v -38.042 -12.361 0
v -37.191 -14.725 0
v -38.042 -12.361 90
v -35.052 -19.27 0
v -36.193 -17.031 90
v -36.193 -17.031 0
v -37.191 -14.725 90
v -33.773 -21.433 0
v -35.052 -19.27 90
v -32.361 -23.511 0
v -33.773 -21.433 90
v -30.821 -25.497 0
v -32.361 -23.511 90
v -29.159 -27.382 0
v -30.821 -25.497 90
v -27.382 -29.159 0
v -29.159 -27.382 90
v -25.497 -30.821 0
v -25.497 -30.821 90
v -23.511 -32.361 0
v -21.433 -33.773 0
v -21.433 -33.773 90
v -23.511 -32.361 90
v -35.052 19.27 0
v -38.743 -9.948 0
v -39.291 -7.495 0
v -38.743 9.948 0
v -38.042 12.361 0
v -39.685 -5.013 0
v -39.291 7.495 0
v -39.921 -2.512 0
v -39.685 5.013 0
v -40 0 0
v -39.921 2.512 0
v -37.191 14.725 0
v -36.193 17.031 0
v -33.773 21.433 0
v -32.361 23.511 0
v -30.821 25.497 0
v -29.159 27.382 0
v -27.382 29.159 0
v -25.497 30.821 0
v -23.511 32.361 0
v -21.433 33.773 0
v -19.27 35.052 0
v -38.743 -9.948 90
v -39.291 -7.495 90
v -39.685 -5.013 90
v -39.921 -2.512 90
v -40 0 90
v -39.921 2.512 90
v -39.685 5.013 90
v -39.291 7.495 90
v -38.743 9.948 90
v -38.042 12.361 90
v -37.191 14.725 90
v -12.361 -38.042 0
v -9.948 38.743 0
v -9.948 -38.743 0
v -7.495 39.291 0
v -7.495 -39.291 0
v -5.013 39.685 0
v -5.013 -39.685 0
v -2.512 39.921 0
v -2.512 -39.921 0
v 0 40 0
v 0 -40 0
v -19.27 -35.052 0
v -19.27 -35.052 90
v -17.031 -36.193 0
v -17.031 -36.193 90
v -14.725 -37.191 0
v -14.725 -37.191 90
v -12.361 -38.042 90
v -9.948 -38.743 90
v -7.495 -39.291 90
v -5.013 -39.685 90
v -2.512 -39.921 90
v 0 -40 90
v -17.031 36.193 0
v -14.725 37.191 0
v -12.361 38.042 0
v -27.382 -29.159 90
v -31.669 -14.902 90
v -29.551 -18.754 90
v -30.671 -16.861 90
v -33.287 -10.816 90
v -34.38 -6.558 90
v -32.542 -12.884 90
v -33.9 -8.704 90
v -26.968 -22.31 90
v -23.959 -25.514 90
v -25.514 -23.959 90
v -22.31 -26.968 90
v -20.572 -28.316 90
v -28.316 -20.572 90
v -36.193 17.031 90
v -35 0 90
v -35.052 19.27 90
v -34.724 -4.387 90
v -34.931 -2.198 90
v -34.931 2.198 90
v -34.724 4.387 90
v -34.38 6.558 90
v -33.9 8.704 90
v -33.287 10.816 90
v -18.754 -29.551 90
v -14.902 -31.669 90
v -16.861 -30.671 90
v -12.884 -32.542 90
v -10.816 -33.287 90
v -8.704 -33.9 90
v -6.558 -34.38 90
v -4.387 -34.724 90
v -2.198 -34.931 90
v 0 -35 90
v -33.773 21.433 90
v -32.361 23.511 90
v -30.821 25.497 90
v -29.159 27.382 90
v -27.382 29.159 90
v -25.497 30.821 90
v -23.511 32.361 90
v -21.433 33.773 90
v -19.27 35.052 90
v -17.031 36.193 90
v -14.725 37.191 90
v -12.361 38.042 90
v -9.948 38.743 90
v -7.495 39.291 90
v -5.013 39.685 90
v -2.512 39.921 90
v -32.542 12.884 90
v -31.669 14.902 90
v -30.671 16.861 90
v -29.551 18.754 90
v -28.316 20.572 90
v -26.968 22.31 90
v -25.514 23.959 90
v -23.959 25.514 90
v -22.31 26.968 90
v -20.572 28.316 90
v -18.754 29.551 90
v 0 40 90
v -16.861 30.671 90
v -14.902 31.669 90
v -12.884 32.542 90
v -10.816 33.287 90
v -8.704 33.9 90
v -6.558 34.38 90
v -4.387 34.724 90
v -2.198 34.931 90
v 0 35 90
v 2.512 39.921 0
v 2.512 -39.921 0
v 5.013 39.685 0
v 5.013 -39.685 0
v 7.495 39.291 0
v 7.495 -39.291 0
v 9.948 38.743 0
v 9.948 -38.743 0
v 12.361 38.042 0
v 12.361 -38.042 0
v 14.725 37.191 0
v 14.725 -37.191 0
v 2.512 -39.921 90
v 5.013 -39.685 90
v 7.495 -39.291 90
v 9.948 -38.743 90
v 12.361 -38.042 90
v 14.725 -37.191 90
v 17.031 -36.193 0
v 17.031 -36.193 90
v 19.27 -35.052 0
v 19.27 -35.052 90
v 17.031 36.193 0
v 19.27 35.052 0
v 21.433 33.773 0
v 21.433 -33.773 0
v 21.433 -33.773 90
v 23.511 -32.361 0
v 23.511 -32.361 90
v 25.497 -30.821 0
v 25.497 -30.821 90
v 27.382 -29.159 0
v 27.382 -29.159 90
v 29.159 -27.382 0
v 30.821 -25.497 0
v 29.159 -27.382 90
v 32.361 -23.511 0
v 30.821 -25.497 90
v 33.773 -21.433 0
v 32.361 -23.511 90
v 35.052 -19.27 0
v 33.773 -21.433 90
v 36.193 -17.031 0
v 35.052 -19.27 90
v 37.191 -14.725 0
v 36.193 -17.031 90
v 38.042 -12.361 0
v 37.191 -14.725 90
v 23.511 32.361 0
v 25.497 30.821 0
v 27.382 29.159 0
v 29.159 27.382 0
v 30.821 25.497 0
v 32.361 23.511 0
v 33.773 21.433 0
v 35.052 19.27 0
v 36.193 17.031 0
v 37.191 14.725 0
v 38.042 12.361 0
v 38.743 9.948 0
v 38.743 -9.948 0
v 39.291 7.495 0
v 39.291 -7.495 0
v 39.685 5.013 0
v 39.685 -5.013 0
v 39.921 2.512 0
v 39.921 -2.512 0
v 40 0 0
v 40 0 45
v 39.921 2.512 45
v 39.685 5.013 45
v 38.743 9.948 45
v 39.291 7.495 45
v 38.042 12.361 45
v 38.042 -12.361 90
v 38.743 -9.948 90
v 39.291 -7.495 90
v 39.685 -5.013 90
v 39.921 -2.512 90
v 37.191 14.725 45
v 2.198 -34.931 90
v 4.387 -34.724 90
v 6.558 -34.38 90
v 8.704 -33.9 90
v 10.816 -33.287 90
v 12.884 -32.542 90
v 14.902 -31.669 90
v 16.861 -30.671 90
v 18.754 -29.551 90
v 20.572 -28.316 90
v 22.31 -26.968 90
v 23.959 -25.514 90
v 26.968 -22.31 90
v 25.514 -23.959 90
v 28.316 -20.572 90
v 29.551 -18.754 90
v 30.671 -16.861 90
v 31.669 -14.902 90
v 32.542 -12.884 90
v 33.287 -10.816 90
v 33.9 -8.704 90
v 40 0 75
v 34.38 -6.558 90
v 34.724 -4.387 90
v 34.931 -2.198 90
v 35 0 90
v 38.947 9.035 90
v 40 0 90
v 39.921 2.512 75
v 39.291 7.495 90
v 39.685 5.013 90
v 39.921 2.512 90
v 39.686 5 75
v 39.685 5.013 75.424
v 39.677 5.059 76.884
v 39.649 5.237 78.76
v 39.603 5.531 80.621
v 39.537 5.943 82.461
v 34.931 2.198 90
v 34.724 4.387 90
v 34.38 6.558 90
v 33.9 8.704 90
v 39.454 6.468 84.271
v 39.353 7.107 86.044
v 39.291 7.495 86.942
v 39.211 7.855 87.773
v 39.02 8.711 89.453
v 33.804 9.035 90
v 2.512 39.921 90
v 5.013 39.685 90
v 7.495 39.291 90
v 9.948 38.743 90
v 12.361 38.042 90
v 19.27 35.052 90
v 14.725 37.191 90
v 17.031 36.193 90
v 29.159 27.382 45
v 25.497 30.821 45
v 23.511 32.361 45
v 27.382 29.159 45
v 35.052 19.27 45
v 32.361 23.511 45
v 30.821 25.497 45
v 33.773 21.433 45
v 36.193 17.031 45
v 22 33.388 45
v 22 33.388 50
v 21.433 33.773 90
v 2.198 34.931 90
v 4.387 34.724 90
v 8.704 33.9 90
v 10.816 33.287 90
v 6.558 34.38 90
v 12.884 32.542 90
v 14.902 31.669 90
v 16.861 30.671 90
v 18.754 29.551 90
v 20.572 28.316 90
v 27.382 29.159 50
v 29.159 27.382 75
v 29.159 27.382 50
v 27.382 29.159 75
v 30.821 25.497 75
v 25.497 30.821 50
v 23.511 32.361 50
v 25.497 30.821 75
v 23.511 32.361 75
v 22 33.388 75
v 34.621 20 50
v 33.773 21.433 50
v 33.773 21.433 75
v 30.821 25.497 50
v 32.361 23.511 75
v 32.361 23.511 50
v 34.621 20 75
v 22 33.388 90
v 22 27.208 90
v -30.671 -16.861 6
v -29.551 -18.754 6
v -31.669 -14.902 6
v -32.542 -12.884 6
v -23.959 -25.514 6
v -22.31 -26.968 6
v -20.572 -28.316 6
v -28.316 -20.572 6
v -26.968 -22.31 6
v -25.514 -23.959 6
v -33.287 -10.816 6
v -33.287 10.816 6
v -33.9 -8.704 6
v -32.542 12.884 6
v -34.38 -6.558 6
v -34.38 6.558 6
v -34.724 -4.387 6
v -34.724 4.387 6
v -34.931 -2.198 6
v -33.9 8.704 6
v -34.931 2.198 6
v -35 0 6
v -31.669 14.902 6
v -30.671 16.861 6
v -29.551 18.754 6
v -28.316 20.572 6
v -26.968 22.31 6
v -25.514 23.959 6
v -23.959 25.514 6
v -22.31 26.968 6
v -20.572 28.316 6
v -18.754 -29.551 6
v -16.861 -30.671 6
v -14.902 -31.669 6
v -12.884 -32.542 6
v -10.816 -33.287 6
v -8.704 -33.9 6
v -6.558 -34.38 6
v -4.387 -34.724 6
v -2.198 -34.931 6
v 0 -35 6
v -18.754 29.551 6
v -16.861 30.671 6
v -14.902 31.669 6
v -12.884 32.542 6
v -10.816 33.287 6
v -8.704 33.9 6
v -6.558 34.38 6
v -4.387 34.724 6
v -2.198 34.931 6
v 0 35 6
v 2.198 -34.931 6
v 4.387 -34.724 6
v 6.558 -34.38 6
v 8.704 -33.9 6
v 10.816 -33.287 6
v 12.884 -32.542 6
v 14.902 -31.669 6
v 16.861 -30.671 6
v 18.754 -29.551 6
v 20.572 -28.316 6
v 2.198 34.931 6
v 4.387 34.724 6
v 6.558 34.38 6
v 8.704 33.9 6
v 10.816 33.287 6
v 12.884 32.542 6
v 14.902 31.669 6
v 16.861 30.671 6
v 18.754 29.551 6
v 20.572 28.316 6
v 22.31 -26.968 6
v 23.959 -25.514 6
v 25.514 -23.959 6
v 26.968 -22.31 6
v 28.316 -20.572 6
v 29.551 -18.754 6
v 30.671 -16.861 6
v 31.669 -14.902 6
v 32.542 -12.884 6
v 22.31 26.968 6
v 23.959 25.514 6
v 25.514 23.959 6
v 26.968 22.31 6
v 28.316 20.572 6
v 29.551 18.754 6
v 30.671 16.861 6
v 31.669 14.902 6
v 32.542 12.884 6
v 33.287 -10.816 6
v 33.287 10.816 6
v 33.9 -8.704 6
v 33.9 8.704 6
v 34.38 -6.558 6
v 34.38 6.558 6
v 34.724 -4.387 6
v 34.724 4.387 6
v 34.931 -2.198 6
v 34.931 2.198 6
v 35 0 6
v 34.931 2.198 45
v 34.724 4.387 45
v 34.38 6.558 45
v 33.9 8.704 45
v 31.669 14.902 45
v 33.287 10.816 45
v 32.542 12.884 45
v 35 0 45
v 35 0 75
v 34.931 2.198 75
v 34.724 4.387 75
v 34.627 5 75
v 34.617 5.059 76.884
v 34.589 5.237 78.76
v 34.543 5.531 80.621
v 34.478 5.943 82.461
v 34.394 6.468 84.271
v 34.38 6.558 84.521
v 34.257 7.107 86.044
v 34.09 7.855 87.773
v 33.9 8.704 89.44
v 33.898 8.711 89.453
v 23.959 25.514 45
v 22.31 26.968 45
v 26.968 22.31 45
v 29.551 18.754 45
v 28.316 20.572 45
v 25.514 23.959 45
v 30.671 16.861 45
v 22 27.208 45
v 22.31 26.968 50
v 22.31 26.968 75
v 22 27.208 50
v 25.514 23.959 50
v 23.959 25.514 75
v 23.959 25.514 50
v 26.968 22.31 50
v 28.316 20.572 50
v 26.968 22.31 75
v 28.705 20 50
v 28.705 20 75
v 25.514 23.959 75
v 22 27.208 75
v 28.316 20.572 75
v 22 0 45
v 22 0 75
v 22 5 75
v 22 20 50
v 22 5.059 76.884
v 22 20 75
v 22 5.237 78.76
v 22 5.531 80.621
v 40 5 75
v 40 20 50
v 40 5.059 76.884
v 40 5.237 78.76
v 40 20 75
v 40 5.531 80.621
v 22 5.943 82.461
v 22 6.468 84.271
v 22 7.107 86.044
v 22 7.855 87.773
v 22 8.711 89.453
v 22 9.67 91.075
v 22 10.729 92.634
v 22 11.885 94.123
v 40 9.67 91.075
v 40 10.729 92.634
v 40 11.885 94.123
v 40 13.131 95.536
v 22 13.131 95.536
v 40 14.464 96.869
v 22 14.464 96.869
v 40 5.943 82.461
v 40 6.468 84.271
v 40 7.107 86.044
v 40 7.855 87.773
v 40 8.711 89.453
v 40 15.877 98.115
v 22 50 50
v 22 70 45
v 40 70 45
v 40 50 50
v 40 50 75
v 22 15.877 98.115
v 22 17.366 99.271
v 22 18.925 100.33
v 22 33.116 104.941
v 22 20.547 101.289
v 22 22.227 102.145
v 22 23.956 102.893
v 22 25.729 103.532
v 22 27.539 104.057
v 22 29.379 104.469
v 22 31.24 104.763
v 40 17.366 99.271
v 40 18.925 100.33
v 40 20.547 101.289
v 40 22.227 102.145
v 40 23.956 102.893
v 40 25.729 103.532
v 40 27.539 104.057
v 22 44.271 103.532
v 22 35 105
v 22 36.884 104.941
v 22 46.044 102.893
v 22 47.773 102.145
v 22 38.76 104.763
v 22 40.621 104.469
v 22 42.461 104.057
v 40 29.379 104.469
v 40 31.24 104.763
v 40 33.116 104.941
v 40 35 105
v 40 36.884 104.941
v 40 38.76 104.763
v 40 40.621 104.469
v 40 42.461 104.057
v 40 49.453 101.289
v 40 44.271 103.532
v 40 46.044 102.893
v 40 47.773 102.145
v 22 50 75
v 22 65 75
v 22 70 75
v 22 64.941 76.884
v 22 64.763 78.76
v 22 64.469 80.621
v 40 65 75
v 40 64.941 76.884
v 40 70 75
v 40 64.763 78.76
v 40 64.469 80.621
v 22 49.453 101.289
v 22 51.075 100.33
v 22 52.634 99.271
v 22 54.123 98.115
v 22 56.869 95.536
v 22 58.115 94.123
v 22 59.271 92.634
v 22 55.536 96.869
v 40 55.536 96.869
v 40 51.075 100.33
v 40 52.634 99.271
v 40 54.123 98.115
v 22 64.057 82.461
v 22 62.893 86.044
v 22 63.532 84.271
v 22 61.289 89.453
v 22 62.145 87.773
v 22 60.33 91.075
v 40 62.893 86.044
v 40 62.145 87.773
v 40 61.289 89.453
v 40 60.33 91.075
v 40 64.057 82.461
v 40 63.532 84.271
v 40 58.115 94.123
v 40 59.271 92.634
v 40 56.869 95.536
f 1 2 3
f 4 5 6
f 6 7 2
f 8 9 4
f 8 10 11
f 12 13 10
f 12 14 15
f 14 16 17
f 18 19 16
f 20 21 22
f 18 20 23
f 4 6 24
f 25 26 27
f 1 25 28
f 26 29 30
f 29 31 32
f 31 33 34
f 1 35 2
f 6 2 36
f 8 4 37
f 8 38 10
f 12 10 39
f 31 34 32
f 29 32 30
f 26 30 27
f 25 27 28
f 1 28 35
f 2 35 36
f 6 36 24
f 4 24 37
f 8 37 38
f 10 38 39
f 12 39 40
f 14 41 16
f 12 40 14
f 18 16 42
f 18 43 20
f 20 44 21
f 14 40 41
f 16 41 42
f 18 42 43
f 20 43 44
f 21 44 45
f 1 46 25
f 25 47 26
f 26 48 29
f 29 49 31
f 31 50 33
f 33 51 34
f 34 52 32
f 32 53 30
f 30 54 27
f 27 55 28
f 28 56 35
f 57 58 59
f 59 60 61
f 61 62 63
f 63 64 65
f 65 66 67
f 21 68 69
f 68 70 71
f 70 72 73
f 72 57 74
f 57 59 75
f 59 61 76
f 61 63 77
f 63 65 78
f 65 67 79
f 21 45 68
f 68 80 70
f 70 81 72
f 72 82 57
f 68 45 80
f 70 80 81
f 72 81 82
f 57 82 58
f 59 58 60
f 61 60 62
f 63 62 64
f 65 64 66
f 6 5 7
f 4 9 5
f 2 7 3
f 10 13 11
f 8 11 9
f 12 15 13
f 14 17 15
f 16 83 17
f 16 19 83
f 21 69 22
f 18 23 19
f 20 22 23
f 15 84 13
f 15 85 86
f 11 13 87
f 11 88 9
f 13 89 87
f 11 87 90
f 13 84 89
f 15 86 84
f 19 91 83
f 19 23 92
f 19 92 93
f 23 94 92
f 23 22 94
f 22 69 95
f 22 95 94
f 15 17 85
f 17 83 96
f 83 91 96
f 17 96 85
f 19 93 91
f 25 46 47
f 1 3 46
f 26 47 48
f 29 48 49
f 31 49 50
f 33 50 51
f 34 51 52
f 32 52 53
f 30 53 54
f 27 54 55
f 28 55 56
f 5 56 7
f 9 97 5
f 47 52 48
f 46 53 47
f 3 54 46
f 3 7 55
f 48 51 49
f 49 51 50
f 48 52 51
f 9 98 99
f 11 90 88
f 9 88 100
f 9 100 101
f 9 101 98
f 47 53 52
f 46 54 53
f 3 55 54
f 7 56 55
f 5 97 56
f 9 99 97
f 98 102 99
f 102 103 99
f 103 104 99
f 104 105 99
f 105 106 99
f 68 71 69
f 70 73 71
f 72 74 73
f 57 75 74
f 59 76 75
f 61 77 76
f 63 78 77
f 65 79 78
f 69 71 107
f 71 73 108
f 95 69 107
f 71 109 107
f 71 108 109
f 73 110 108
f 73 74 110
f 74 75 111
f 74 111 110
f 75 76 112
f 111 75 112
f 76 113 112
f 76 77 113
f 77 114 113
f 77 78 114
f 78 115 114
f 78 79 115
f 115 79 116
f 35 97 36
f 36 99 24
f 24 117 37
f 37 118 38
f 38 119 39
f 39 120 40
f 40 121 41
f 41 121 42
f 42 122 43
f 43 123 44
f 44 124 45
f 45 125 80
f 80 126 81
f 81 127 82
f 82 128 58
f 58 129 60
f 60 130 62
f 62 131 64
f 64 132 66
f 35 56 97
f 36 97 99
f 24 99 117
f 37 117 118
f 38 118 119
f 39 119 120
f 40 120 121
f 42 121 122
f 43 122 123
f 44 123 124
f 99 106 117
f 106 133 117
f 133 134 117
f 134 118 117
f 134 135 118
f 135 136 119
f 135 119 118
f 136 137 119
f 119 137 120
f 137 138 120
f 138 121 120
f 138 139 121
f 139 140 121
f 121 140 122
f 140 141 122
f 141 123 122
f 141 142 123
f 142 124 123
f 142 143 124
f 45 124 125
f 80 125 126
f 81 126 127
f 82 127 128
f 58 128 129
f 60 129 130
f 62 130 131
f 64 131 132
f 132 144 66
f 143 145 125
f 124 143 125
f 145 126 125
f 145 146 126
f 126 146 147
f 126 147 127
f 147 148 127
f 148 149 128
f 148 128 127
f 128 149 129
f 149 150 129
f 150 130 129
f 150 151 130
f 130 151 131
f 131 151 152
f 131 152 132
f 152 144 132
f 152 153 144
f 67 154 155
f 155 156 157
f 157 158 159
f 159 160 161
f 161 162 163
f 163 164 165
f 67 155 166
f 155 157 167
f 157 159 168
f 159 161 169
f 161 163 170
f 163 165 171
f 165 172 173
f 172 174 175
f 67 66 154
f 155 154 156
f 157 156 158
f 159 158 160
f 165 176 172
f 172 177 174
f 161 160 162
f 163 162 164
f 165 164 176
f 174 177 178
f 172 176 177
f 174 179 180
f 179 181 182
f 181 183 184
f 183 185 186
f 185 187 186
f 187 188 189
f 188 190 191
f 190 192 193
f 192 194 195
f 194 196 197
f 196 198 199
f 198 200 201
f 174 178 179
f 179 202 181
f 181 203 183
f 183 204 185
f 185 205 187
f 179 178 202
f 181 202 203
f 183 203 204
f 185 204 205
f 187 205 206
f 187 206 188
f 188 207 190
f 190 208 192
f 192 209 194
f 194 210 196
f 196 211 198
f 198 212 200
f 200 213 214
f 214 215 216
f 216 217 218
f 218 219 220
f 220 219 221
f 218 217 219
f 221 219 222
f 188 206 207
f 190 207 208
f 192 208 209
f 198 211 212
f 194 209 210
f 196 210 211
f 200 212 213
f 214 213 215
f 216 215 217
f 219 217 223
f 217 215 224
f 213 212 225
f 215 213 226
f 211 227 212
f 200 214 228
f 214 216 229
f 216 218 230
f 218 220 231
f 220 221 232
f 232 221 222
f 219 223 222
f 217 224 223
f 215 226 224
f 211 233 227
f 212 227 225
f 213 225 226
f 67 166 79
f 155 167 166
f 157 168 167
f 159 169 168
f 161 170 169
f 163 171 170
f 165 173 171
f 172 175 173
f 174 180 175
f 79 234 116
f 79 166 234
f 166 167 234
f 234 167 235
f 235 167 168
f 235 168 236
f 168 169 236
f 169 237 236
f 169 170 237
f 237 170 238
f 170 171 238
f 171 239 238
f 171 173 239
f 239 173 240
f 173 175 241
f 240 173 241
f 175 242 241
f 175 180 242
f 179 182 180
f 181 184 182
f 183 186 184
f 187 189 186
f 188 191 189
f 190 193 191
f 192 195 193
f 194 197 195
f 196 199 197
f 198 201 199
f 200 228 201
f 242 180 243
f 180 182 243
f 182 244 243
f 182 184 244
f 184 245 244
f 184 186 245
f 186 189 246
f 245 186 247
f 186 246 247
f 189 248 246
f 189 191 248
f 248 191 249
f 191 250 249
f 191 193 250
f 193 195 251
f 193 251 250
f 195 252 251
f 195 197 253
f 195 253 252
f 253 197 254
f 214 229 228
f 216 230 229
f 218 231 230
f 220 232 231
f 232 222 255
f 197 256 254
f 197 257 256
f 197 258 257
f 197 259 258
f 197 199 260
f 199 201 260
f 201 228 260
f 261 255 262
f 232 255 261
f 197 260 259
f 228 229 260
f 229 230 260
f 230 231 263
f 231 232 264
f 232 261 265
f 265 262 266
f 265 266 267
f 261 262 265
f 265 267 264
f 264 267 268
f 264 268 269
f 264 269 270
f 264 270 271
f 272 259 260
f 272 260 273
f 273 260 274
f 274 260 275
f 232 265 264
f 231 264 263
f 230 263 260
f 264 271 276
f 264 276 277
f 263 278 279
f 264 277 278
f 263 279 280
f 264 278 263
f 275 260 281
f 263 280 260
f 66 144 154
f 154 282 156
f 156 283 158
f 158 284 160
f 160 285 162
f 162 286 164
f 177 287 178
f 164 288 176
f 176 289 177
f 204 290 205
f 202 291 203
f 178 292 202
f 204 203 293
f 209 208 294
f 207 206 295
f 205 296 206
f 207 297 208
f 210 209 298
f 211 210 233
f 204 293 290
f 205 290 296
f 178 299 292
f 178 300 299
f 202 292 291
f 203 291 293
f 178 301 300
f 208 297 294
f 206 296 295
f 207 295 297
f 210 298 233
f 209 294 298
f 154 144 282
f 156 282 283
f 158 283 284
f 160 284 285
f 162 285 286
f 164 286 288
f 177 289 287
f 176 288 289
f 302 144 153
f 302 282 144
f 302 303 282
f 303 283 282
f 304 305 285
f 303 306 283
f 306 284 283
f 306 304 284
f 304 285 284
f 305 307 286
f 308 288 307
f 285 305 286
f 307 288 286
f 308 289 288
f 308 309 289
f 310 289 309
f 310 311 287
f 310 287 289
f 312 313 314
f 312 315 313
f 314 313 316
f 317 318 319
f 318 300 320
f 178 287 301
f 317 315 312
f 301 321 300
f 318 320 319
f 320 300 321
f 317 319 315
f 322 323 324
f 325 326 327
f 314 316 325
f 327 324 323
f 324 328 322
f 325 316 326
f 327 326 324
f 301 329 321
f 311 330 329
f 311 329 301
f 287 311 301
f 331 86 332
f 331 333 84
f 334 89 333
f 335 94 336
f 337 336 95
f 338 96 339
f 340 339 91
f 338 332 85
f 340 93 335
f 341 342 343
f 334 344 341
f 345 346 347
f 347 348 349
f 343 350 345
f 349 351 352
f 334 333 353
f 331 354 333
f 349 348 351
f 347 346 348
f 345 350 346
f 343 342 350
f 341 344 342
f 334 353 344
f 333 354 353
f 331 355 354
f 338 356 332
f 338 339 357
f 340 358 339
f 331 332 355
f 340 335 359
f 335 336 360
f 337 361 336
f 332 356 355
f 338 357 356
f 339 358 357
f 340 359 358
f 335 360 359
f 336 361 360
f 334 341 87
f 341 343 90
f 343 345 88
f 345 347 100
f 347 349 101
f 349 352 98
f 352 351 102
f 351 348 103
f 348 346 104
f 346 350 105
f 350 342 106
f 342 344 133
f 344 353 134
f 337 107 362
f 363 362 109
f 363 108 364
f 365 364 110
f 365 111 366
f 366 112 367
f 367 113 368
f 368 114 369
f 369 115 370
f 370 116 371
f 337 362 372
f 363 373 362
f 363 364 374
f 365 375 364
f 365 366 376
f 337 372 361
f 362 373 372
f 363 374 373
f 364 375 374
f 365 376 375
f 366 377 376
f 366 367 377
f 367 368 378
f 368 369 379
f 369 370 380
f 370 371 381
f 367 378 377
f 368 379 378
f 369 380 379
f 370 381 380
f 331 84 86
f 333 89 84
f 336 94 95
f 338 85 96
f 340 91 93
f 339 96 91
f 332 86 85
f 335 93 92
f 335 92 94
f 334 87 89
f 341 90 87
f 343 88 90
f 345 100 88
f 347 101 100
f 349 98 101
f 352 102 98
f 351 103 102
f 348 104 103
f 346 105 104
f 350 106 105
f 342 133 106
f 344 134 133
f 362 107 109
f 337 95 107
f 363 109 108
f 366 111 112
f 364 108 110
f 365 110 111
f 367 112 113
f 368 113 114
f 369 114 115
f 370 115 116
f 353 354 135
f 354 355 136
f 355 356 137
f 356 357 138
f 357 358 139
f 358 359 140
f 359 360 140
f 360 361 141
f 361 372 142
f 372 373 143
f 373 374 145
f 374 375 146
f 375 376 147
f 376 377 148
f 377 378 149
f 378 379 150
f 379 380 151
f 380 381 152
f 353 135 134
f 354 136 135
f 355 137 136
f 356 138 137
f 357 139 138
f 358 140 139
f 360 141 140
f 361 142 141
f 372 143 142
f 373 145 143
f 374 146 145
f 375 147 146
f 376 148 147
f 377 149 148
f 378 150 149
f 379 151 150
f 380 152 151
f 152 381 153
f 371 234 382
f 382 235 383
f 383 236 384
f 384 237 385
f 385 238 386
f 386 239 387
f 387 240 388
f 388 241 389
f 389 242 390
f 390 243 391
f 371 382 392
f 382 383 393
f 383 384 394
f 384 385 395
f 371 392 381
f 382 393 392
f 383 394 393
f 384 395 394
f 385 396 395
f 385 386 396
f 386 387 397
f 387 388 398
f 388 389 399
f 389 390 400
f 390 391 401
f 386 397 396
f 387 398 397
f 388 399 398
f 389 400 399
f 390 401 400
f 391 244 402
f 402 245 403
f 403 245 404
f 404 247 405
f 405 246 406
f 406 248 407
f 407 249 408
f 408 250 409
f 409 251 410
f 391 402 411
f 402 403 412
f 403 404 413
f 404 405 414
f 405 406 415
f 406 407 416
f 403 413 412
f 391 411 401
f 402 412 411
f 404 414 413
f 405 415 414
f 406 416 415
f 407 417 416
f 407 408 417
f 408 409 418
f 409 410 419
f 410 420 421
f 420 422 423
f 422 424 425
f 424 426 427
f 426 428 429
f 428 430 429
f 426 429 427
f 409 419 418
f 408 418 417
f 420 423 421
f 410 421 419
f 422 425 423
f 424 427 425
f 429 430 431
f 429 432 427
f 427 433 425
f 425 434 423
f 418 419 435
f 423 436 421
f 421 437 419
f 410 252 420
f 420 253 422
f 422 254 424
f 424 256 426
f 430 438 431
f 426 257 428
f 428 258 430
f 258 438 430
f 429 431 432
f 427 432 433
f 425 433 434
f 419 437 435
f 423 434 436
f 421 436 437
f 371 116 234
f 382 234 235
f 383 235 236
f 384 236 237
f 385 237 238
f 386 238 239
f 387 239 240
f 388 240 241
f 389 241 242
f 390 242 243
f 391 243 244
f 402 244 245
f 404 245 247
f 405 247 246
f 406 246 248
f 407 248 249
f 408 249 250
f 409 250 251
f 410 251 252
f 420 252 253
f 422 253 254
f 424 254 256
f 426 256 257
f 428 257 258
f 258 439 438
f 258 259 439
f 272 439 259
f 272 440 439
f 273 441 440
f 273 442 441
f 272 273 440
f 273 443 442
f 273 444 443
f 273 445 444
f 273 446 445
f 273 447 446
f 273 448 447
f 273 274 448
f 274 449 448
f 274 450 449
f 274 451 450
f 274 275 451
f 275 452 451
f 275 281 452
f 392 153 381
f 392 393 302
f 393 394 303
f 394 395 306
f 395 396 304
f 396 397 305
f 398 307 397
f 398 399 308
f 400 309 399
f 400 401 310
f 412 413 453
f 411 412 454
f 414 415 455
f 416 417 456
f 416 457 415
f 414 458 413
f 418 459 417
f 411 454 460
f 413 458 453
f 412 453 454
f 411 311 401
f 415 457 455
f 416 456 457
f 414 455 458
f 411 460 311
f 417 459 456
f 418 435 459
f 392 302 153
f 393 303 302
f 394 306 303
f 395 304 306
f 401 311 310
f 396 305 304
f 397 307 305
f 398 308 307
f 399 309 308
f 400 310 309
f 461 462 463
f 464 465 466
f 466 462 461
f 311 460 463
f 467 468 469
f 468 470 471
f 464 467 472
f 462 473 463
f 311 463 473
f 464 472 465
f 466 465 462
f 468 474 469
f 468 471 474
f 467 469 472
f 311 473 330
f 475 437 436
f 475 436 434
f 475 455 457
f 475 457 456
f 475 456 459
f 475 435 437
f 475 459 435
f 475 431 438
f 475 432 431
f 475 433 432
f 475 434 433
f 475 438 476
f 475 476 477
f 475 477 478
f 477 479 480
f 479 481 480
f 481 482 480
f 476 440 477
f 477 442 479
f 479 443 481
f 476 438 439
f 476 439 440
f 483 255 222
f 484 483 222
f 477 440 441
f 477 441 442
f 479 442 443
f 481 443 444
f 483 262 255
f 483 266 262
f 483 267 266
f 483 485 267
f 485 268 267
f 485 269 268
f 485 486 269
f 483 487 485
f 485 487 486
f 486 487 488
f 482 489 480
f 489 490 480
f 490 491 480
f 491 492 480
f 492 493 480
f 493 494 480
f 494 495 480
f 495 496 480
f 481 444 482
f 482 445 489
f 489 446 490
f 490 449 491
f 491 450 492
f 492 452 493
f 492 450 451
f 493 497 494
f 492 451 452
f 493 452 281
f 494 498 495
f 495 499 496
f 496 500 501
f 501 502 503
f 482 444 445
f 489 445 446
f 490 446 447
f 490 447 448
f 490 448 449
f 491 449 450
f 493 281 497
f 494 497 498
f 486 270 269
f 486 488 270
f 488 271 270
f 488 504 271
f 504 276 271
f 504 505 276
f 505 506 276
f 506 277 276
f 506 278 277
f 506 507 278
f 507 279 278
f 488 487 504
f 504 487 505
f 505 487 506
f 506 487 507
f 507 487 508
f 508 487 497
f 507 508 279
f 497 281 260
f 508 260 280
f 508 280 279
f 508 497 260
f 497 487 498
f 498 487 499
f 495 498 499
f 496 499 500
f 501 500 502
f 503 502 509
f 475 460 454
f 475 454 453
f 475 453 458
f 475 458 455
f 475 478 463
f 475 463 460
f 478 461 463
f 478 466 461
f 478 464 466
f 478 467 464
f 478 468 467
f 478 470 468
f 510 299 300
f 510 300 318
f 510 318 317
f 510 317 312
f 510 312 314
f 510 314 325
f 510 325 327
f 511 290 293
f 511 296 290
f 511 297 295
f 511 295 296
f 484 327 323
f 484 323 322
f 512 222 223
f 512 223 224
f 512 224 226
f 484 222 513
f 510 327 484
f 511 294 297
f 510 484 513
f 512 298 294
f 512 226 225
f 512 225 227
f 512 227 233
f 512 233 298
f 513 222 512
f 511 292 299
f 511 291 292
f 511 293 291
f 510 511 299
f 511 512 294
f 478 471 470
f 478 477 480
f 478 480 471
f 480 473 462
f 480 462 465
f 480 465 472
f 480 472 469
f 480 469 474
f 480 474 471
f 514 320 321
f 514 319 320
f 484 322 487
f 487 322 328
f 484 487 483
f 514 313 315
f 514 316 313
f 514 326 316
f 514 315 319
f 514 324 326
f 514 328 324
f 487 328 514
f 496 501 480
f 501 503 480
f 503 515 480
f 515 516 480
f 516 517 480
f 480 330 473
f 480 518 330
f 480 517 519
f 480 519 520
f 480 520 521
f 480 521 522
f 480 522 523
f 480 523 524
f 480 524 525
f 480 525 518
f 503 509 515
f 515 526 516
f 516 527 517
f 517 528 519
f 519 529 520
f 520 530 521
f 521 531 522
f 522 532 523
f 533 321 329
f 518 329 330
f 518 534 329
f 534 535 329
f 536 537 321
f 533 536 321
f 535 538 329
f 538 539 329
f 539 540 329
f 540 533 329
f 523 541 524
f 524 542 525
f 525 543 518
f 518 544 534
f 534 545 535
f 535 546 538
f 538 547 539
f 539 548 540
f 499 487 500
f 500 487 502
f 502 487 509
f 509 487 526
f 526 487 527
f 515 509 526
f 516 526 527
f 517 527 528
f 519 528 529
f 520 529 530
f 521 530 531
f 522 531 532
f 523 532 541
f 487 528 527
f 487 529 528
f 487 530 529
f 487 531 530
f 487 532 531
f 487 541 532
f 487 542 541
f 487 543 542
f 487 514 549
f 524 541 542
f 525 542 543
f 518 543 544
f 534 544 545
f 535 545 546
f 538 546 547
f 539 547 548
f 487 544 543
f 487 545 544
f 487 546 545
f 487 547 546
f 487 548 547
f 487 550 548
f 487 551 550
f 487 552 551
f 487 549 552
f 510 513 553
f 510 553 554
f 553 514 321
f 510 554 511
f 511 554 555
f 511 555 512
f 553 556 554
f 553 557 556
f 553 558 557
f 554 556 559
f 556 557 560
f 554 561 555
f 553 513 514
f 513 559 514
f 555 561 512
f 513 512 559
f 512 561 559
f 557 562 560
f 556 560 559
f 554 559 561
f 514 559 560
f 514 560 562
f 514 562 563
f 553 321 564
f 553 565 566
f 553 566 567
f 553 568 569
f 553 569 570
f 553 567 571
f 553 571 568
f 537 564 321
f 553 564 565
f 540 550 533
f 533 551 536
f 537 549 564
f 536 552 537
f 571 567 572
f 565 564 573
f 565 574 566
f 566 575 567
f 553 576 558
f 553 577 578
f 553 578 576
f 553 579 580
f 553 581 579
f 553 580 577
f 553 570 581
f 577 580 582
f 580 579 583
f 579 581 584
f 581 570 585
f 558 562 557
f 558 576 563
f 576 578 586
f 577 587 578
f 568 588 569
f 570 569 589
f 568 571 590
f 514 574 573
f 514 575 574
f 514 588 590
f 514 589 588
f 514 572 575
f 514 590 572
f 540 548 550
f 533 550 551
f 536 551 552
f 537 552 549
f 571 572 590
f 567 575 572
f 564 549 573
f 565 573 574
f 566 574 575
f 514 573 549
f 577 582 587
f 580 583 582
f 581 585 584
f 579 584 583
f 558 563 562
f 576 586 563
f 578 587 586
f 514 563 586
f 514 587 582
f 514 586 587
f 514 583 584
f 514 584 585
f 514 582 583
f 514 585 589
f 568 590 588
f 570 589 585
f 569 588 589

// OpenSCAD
$fn = 100;

// Mug body: outer cylinder and hollow inner with bottom thickness 6
module mug_body() {
    difference() {
        cylinder(h = 90, r = 40, $fn = $fn);
        translate([0, 0, 6]) cylinder(h = 84, r = 35, $fn = $fn);
    }
}

// Handle cross-section (D-shape) in XY plane with inner hollow
module handle_cross_section() {
    Th = 30;        // thickness into +X direction
    Hh = 70;        // total height
    hole_w = 25;    // inner hollow width
    hole_h = 30;    // inner hollow height
    hole_x = Th - hole_w;
    hole_y = (Hh - hole_h) / 2;

    difference() {
        union() {
            // D-shape: left straight edge, right semicircular edge
            square([Th, Hh], center = false);
            translate([Th, Hh/2]) circle(r = Th, $fn = $fn);
        }
        translate([hole_x, hole_y])
            square([hole_w, hole_h], center = false);
    }
}

// Extrude the 2D handle cross-section along the X axis
module handle3d() {
    // Move the cross-section into the YZ plane, then extrude along X by rotating
    rotate([0, -90, 0]) {
        linear_extrude(height = 18) {
            handle_cross_section();
        }
    }
}

// Assemble mug with handle on the +X side
union() {
    mug_body();

    // Position the handle near the outer surface on the +X side, at mid-height
    translate([40, 0, 45]) handle3d();
}
